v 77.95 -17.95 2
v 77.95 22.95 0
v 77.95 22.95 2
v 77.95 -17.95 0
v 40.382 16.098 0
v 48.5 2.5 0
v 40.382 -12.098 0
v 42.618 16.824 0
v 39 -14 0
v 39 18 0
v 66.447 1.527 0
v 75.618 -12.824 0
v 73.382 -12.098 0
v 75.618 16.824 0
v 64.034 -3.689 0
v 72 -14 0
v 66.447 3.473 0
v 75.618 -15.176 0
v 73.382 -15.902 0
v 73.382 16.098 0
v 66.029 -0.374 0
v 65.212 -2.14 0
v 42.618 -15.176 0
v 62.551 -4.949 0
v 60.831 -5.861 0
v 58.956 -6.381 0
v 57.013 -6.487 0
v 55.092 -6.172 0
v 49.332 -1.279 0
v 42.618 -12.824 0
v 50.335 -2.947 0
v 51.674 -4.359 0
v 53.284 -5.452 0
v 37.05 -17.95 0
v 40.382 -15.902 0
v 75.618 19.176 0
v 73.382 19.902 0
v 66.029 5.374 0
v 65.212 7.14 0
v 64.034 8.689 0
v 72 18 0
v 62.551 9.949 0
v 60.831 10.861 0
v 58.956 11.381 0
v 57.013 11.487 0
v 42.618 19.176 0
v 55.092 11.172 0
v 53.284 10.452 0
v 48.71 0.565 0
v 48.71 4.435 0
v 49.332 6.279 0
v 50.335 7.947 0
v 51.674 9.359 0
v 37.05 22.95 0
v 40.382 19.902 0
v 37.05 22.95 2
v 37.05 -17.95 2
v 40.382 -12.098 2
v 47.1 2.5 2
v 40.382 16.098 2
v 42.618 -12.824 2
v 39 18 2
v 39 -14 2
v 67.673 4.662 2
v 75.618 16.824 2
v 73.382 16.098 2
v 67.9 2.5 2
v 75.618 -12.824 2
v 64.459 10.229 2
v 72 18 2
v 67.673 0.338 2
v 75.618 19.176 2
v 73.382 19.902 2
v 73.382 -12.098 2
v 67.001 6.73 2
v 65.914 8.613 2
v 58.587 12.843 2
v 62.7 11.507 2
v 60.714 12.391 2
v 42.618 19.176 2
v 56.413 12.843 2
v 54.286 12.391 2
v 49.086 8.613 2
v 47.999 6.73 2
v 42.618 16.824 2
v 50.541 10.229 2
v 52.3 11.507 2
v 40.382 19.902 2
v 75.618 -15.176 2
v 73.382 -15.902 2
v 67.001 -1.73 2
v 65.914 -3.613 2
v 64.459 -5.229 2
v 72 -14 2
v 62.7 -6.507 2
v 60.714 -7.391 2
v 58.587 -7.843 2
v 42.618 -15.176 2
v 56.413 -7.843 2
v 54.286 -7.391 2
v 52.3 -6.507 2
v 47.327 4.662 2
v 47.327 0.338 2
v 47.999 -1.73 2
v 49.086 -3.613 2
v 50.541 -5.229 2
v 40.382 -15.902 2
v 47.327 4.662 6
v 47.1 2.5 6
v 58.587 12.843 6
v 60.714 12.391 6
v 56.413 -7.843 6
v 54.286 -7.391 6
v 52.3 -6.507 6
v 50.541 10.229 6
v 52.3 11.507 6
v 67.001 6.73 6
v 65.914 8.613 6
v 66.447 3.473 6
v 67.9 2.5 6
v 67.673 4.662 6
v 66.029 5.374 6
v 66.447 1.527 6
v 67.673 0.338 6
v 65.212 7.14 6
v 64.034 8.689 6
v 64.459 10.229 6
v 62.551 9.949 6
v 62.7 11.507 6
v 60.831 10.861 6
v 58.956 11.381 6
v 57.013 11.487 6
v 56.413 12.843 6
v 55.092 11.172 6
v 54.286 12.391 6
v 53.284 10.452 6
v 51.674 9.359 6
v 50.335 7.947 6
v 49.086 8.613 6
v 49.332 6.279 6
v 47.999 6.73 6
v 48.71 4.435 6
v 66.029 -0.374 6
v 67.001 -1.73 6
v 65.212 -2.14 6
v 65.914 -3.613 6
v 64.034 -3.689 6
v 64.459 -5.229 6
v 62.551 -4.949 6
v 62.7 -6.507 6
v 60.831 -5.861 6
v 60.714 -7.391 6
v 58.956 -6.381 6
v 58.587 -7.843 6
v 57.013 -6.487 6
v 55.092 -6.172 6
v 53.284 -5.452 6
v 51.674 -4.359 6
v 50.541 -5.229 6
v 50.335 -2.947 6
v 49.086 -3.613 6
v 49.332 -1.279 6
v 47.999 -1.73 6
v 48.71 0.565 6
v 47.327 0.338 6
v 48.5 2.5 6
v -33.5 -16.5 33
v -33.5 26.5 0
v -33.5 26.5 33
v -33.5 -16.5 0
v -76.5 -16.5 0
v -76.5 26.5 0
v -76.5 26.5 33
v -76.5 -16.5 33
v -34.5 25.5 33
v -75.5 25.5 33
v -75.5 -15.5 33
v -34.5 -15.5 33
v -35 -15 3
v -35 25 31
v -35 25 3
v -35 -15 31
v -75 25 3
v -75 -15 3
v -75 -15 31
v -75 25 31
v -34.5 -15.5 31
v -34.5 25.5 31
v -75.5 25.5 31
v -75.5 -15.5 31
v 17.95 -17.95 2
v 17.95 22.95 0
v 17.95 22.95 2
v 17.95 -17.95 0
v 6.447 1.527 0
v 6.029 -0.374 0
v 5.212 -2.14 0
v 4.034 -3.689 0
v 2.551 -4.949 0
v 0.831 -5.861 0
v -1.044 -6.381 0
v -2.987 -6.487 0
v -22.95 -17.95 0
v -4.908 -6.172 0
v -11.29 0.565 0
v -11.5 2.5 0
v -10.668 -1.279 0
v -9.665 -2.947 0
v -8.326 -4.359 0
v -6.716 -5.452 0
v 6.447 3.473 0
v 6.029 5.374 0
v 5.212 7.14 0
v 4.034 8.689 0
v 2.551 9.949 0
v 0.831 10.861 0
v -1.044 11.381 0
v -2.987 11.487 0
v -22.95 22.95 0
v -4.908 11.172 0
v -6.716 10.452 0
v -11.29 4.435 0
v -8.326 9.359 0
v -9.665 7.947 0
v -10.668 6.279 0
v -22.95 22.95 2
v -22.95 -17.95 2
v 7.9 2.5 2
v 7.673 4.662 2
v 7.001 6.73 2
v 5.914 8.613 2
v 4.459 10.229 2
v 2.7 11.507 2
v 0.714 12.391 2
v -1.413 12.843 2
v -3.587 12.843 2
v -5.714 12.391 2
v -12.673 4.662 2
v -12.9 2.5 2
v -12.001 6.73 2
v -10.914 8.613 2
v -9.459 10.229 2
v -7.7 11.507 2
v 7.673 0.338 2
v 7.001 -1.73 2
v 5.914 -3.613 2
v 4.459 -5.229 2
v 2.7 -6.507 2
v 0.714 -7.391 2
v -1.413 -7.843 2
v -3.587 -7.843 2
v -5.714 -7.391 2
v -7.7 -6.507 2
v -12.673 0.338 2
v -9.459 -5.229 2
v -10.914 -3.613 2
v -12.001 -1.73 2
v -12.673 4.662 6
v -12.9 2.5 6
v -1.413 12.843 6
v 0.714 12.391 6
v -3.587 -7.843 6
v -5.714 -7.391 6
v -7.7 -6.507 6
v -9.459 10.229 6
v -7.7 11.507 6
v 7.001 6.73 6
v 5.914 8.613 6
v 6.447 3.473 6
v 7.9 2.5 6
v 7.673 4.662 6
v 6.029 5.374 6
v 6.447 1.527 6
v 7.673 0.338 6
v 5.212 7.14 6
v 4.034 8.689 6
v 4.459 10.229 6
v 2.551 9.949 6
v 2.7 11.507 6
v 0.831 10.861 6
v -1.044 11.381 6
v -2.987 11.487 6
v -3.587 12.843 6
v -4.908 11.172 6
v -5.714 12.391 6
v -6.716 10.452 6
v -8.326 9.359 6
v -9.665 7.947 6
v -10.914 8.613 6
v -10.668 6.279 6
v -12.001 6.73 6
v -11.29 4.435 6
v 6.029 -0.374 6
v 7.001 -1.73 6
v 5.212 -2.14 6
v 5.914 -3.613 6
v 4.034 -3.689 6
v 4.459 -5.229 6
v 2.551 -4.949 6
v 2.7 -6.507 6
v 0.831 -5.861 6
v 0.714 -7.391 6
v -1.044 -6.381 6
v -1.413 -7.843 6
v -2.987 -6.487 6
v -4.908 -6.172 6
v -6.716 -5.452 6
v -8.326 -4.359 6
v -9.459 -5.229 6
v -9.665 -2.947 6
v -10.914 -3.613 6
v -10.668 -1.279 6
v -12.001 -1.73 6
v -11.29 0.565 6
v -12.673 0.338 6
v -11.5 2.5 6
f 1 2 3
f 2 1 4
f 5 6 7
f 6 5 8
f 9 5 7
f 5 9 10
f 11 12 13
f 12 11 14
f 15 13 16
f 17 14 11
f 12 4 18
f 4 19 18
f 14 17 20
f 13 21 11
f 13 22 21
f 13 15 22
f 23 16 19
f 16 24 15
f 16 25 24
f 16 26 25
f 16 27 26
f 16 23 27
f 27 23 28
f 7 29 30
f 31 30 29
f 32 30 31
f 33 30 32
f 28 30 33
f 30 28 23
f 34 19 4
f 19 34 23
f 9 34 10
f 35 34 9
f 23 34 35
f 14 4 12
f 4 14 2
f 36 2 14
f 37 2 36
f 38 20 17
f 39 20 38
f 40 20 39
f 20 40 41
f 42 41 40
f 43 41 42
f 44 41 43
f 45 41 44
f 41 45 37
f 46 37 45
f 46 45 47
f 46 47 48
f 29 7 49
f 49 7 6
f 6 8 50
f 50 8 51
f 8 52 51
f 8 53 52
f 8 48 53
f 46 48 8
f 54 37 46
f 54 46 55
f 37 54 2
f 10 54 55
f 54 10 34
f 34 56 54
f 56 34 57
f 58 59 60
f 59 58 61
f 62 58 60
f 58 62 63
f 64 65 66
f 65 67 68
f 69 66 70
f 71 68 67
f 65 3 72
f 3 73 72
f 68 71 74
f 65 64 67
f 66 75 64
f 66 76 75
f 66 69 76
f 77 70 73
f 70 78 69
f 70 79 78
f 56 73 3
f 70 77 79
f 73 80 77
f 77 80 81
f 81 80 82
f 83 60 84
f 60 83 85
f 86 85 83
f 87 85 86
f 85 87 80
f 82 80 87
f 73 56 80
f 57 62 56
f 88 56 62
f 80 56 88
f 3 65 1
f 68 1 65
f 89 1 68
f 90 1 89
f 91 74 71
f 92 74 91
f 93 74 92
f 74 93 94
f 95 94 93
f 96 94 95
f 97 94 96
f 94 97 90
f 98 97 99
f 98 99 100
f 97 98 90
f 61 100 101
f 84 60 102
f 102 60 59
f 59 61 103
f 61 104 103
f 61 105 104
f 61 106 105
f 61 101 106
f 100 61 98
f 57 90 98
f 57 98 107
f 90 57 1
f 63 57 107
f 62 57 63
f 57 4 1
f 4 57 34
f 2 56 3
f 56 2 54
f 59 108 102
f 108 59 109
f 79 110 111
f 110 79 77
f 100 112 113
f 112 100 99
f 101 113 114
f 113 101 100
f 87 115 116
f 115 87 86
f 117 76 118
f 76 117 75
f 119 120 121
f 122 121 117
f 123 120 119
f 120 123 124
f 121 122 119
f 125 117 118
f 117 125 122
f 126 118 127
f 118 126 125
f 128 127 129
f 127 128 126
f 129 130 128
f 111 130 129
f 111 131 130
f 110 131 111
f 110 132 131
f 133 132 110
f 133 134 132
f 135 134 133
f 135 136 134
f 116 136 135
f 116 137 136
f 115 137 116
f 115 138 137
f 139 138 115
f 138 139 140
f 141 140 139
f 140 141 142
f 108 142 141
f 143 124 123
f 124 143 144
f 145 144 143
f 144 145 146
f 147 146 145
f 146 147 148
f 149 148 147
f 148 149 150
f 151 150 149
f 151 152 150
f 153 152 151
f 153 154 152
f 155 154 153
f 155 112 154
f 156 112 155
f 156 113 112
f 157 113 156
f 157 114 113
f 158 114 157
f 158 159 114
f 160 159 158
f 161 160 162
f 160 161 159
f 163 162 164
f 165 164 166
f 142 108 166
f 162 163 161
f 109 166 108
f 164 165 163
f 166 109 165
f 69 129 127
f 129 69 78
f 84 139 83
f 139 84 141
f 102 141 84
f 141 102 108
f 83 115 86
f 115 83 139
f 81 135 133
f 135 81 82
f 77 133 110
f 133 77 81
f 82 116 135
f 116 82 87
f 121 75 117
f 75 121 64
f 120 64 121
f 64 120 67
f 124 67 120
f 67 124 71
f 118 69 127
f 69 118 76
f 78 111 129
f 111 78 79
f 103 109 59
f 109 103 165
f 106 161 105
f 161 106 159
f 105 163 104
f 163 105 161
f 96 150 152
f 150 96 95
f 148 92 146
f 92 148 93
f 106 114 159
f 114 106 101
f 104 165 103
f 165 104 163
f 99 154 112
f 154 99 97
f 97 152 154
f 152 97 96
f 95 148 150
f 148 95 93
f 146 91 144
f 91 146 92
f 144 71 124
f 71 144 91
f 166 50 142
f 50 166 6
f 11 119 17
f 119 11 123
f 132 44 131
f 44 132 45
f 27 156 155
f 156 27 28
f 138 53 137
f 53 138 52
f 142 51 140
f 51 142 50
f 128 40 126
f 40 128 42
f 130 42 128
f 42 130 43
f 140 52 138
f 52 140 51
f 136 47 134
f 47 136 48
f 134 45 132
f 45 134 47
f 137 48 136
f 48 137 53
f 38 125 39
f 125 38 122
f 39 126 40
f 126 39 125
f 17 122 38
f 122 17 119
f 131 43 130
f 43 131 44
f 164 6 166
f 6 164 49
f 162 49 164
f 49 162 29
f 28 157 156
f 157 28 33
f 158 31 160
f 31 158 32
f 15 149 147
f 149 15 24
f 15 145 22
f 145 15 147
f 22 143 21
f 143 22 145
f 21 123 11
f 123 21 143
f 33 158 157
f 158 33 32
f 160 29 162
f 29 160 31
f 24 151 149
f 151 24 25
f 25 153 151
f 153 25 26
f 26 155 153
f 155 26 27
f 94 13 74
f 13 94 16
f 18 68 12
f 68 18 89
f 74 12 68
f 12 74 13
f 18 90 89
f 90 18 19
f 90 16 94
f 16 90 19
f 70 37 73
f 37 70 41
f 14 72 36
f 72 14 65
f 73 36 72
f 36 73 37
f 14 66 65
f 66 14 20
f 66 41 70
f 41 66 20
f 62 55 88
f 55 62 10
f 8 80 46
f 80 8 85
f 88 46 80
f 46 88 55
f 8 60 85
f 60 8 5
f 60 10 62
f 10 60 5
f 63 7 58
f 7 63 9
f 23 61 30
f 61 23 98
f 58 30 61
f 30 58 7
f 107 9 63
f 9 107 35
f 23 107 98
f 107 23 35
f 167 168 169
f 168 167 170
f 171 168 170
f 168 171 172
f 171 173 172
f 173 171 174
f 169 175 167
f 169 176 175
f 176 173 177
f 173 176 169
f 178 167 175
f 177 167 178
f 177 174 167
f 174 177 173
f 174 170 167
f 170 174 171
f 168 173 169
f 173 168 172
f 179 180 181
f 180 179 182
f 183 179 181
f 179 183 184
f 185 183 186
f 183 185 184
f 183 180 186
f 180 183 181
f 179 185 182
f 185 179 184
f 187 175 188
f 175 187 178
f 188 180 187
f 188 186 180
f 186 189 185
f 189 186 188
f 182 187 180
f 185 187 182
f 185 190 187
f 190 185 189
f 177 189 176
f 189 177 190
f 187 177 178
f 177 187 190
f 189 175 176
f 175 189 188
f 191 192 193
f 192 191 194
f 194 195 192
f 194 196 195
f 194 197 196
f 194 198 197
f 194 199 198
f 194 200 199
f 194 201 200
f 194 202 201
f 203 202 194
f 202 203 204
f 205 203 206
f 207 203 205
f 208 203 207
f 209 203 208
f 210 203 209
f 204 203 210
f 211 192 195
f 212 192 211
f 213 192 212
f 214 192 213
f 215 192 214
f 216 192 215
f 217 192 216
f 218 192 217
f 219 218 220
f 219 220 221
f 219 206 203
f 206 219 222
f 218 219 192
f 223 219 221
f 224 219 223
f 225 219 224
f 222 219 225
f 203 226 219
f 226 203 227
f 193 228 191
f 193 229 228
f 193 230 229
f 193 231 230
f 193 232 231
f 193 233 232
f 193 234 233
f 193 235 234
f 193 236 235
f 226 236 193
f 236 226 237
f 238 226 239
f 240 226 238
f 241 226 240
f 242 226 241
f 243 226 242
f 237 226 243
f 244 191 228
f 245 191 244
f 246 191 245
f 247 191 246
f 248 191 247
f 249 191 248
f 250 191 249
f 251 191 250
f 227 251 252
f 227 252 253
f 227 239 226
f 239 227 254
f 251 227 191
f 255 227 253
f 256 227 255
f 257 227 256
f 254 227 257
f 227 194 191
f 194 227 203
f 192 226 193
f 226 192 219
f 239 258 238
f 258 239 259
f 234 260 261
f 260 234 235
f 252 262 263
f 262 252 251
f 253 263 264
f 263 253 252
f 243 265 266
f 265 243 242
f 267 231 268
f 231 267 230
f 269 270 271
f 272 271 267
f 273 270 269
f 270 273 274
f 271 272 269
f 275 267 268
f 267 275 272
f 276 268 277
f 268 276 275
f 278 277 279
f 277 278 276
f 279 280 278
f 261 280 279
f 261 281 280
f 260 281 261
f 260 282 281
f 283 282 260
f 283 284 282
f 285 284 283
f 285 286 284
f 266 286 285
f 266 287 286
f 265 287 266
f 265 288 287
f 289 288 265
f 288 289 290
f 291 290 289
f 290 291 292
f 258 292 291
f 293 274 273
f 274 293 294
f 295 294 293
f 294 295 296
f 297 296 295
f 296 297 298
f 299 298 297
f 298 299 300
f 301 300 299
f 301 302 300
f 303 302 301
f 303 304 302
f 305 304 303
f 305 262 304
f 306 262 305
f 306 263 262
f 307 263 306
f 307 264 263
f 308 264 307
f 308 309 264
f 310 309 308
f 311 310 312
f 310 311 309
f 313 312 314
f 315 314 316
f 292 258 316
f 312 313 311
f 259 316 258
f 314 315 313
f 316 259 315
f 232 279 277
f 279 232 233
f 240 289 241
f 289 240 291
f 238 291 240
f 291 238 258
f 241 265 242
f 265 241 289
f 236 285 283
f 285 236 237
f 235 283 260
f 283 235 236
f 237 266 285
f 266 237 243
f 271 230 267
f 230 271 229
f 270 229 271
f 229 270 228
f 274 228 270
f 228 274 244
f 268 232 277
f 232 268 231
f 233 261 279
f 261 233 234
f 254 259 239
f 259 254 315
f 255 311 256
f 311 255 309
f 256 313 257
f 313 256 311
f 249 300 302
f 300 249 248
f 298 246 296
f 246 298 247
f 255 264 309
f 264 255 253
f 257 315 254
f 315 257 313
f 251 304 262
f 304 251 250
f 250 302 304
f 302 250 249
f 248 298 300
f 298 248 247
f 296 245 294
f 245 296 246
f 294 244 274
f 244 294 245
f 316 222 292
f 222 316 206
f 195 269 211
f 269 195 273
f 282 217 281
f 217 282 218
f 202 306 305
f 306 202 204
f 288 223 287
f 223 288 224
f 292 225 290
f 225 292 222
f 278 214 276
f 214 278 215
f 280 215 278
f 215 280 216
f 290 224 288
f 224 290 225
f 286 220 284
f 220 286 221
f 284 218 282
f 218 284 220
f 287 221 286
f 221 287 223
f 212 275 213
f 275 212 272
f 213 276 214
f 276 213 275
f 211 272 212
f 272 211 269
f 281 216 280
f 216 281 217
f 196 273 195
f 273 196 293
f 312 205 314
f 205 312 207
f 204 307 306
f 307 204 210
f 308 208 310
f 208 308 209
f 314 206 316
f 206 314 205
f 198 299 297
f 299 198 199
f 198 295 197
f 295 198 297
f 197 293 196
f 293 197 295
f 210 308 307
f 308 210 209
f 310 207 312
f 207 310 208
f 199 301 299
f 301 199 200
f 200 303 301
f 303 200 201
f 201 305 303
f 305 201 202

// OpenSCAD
//
// Project Curacao2 WeatherPi Lightning Sensor Block Extension
//
// SwitchDoc Labs 5/18/15
//
//

module sensorPylon()
{
    
    // tube
    
    difference()
    {
        union()
        {
            cylinder(120, r=12);

    

        }
    
        translate([0,0,-10])
        cylinder(150, r=10.5);
        
 
        
    }
    
    
   
    
    
    
    
}

module sensorPylonStand()
{


    difference()
    {
         union()
        {
            translate([-17.95,-17.95,-1])
            cube([40.9,40.9,2]);
            
            translate([2.5,2.5,-5])
            #cylinder(5,r=10.4);
        }
        
        translate([2.5,2.5,-5])
        #cylinder(10,r=9.0); 

       
        
        // screw holes
        translate([-14,-14,-5])   
        #cylinder(h=10,r=2.0,$fs=6);
        
         translate([-14,18,-5])   
        #cylinder(h=10,r=2.0,$fs=6);
        
         translate([19,18,-5])   
        #cylinder(h=10,r=2.0,$fs=6);
        
         translate([19,-14,-5])   
        #cylinder(h=10,r=2.0,$fs=6);
      
    }
    
    

}

module sensorBox()
{
    
    difference()
    {
        translate([-16.5,-16.5,0])
        cube([43,43,33]);
    
        translate([-15,-15,-2])
        cube([40,40,32]);
        
        translate([-15.5,-15.5,-1])
        cube([41,41,3]);
        
    }
    
    
}

module sensorPlatform()
{
    
    difference()
    {
        union()
        {
            translate([-17.95,-17.95,-1])
            cube([40.9,40.9,2]);
            
            translate([2.5,2.5,-5])
            #cylinder(5,r=10.4);
        }
        
        translate([2.5,2.5,-5])
        #cylinder(10,r=9.0); 
    }
    
    
}



/*
translate([100,0,0])
sensorPylon();

*/

translate([60,0,1])
rotate(180,[0,1,0])
sensorPylonStand();

rotate(180,[0,1,0])
{
translate([50,0,-33])
sensorBox();

translate([0,0,-1])
sensorPlatform();
}
